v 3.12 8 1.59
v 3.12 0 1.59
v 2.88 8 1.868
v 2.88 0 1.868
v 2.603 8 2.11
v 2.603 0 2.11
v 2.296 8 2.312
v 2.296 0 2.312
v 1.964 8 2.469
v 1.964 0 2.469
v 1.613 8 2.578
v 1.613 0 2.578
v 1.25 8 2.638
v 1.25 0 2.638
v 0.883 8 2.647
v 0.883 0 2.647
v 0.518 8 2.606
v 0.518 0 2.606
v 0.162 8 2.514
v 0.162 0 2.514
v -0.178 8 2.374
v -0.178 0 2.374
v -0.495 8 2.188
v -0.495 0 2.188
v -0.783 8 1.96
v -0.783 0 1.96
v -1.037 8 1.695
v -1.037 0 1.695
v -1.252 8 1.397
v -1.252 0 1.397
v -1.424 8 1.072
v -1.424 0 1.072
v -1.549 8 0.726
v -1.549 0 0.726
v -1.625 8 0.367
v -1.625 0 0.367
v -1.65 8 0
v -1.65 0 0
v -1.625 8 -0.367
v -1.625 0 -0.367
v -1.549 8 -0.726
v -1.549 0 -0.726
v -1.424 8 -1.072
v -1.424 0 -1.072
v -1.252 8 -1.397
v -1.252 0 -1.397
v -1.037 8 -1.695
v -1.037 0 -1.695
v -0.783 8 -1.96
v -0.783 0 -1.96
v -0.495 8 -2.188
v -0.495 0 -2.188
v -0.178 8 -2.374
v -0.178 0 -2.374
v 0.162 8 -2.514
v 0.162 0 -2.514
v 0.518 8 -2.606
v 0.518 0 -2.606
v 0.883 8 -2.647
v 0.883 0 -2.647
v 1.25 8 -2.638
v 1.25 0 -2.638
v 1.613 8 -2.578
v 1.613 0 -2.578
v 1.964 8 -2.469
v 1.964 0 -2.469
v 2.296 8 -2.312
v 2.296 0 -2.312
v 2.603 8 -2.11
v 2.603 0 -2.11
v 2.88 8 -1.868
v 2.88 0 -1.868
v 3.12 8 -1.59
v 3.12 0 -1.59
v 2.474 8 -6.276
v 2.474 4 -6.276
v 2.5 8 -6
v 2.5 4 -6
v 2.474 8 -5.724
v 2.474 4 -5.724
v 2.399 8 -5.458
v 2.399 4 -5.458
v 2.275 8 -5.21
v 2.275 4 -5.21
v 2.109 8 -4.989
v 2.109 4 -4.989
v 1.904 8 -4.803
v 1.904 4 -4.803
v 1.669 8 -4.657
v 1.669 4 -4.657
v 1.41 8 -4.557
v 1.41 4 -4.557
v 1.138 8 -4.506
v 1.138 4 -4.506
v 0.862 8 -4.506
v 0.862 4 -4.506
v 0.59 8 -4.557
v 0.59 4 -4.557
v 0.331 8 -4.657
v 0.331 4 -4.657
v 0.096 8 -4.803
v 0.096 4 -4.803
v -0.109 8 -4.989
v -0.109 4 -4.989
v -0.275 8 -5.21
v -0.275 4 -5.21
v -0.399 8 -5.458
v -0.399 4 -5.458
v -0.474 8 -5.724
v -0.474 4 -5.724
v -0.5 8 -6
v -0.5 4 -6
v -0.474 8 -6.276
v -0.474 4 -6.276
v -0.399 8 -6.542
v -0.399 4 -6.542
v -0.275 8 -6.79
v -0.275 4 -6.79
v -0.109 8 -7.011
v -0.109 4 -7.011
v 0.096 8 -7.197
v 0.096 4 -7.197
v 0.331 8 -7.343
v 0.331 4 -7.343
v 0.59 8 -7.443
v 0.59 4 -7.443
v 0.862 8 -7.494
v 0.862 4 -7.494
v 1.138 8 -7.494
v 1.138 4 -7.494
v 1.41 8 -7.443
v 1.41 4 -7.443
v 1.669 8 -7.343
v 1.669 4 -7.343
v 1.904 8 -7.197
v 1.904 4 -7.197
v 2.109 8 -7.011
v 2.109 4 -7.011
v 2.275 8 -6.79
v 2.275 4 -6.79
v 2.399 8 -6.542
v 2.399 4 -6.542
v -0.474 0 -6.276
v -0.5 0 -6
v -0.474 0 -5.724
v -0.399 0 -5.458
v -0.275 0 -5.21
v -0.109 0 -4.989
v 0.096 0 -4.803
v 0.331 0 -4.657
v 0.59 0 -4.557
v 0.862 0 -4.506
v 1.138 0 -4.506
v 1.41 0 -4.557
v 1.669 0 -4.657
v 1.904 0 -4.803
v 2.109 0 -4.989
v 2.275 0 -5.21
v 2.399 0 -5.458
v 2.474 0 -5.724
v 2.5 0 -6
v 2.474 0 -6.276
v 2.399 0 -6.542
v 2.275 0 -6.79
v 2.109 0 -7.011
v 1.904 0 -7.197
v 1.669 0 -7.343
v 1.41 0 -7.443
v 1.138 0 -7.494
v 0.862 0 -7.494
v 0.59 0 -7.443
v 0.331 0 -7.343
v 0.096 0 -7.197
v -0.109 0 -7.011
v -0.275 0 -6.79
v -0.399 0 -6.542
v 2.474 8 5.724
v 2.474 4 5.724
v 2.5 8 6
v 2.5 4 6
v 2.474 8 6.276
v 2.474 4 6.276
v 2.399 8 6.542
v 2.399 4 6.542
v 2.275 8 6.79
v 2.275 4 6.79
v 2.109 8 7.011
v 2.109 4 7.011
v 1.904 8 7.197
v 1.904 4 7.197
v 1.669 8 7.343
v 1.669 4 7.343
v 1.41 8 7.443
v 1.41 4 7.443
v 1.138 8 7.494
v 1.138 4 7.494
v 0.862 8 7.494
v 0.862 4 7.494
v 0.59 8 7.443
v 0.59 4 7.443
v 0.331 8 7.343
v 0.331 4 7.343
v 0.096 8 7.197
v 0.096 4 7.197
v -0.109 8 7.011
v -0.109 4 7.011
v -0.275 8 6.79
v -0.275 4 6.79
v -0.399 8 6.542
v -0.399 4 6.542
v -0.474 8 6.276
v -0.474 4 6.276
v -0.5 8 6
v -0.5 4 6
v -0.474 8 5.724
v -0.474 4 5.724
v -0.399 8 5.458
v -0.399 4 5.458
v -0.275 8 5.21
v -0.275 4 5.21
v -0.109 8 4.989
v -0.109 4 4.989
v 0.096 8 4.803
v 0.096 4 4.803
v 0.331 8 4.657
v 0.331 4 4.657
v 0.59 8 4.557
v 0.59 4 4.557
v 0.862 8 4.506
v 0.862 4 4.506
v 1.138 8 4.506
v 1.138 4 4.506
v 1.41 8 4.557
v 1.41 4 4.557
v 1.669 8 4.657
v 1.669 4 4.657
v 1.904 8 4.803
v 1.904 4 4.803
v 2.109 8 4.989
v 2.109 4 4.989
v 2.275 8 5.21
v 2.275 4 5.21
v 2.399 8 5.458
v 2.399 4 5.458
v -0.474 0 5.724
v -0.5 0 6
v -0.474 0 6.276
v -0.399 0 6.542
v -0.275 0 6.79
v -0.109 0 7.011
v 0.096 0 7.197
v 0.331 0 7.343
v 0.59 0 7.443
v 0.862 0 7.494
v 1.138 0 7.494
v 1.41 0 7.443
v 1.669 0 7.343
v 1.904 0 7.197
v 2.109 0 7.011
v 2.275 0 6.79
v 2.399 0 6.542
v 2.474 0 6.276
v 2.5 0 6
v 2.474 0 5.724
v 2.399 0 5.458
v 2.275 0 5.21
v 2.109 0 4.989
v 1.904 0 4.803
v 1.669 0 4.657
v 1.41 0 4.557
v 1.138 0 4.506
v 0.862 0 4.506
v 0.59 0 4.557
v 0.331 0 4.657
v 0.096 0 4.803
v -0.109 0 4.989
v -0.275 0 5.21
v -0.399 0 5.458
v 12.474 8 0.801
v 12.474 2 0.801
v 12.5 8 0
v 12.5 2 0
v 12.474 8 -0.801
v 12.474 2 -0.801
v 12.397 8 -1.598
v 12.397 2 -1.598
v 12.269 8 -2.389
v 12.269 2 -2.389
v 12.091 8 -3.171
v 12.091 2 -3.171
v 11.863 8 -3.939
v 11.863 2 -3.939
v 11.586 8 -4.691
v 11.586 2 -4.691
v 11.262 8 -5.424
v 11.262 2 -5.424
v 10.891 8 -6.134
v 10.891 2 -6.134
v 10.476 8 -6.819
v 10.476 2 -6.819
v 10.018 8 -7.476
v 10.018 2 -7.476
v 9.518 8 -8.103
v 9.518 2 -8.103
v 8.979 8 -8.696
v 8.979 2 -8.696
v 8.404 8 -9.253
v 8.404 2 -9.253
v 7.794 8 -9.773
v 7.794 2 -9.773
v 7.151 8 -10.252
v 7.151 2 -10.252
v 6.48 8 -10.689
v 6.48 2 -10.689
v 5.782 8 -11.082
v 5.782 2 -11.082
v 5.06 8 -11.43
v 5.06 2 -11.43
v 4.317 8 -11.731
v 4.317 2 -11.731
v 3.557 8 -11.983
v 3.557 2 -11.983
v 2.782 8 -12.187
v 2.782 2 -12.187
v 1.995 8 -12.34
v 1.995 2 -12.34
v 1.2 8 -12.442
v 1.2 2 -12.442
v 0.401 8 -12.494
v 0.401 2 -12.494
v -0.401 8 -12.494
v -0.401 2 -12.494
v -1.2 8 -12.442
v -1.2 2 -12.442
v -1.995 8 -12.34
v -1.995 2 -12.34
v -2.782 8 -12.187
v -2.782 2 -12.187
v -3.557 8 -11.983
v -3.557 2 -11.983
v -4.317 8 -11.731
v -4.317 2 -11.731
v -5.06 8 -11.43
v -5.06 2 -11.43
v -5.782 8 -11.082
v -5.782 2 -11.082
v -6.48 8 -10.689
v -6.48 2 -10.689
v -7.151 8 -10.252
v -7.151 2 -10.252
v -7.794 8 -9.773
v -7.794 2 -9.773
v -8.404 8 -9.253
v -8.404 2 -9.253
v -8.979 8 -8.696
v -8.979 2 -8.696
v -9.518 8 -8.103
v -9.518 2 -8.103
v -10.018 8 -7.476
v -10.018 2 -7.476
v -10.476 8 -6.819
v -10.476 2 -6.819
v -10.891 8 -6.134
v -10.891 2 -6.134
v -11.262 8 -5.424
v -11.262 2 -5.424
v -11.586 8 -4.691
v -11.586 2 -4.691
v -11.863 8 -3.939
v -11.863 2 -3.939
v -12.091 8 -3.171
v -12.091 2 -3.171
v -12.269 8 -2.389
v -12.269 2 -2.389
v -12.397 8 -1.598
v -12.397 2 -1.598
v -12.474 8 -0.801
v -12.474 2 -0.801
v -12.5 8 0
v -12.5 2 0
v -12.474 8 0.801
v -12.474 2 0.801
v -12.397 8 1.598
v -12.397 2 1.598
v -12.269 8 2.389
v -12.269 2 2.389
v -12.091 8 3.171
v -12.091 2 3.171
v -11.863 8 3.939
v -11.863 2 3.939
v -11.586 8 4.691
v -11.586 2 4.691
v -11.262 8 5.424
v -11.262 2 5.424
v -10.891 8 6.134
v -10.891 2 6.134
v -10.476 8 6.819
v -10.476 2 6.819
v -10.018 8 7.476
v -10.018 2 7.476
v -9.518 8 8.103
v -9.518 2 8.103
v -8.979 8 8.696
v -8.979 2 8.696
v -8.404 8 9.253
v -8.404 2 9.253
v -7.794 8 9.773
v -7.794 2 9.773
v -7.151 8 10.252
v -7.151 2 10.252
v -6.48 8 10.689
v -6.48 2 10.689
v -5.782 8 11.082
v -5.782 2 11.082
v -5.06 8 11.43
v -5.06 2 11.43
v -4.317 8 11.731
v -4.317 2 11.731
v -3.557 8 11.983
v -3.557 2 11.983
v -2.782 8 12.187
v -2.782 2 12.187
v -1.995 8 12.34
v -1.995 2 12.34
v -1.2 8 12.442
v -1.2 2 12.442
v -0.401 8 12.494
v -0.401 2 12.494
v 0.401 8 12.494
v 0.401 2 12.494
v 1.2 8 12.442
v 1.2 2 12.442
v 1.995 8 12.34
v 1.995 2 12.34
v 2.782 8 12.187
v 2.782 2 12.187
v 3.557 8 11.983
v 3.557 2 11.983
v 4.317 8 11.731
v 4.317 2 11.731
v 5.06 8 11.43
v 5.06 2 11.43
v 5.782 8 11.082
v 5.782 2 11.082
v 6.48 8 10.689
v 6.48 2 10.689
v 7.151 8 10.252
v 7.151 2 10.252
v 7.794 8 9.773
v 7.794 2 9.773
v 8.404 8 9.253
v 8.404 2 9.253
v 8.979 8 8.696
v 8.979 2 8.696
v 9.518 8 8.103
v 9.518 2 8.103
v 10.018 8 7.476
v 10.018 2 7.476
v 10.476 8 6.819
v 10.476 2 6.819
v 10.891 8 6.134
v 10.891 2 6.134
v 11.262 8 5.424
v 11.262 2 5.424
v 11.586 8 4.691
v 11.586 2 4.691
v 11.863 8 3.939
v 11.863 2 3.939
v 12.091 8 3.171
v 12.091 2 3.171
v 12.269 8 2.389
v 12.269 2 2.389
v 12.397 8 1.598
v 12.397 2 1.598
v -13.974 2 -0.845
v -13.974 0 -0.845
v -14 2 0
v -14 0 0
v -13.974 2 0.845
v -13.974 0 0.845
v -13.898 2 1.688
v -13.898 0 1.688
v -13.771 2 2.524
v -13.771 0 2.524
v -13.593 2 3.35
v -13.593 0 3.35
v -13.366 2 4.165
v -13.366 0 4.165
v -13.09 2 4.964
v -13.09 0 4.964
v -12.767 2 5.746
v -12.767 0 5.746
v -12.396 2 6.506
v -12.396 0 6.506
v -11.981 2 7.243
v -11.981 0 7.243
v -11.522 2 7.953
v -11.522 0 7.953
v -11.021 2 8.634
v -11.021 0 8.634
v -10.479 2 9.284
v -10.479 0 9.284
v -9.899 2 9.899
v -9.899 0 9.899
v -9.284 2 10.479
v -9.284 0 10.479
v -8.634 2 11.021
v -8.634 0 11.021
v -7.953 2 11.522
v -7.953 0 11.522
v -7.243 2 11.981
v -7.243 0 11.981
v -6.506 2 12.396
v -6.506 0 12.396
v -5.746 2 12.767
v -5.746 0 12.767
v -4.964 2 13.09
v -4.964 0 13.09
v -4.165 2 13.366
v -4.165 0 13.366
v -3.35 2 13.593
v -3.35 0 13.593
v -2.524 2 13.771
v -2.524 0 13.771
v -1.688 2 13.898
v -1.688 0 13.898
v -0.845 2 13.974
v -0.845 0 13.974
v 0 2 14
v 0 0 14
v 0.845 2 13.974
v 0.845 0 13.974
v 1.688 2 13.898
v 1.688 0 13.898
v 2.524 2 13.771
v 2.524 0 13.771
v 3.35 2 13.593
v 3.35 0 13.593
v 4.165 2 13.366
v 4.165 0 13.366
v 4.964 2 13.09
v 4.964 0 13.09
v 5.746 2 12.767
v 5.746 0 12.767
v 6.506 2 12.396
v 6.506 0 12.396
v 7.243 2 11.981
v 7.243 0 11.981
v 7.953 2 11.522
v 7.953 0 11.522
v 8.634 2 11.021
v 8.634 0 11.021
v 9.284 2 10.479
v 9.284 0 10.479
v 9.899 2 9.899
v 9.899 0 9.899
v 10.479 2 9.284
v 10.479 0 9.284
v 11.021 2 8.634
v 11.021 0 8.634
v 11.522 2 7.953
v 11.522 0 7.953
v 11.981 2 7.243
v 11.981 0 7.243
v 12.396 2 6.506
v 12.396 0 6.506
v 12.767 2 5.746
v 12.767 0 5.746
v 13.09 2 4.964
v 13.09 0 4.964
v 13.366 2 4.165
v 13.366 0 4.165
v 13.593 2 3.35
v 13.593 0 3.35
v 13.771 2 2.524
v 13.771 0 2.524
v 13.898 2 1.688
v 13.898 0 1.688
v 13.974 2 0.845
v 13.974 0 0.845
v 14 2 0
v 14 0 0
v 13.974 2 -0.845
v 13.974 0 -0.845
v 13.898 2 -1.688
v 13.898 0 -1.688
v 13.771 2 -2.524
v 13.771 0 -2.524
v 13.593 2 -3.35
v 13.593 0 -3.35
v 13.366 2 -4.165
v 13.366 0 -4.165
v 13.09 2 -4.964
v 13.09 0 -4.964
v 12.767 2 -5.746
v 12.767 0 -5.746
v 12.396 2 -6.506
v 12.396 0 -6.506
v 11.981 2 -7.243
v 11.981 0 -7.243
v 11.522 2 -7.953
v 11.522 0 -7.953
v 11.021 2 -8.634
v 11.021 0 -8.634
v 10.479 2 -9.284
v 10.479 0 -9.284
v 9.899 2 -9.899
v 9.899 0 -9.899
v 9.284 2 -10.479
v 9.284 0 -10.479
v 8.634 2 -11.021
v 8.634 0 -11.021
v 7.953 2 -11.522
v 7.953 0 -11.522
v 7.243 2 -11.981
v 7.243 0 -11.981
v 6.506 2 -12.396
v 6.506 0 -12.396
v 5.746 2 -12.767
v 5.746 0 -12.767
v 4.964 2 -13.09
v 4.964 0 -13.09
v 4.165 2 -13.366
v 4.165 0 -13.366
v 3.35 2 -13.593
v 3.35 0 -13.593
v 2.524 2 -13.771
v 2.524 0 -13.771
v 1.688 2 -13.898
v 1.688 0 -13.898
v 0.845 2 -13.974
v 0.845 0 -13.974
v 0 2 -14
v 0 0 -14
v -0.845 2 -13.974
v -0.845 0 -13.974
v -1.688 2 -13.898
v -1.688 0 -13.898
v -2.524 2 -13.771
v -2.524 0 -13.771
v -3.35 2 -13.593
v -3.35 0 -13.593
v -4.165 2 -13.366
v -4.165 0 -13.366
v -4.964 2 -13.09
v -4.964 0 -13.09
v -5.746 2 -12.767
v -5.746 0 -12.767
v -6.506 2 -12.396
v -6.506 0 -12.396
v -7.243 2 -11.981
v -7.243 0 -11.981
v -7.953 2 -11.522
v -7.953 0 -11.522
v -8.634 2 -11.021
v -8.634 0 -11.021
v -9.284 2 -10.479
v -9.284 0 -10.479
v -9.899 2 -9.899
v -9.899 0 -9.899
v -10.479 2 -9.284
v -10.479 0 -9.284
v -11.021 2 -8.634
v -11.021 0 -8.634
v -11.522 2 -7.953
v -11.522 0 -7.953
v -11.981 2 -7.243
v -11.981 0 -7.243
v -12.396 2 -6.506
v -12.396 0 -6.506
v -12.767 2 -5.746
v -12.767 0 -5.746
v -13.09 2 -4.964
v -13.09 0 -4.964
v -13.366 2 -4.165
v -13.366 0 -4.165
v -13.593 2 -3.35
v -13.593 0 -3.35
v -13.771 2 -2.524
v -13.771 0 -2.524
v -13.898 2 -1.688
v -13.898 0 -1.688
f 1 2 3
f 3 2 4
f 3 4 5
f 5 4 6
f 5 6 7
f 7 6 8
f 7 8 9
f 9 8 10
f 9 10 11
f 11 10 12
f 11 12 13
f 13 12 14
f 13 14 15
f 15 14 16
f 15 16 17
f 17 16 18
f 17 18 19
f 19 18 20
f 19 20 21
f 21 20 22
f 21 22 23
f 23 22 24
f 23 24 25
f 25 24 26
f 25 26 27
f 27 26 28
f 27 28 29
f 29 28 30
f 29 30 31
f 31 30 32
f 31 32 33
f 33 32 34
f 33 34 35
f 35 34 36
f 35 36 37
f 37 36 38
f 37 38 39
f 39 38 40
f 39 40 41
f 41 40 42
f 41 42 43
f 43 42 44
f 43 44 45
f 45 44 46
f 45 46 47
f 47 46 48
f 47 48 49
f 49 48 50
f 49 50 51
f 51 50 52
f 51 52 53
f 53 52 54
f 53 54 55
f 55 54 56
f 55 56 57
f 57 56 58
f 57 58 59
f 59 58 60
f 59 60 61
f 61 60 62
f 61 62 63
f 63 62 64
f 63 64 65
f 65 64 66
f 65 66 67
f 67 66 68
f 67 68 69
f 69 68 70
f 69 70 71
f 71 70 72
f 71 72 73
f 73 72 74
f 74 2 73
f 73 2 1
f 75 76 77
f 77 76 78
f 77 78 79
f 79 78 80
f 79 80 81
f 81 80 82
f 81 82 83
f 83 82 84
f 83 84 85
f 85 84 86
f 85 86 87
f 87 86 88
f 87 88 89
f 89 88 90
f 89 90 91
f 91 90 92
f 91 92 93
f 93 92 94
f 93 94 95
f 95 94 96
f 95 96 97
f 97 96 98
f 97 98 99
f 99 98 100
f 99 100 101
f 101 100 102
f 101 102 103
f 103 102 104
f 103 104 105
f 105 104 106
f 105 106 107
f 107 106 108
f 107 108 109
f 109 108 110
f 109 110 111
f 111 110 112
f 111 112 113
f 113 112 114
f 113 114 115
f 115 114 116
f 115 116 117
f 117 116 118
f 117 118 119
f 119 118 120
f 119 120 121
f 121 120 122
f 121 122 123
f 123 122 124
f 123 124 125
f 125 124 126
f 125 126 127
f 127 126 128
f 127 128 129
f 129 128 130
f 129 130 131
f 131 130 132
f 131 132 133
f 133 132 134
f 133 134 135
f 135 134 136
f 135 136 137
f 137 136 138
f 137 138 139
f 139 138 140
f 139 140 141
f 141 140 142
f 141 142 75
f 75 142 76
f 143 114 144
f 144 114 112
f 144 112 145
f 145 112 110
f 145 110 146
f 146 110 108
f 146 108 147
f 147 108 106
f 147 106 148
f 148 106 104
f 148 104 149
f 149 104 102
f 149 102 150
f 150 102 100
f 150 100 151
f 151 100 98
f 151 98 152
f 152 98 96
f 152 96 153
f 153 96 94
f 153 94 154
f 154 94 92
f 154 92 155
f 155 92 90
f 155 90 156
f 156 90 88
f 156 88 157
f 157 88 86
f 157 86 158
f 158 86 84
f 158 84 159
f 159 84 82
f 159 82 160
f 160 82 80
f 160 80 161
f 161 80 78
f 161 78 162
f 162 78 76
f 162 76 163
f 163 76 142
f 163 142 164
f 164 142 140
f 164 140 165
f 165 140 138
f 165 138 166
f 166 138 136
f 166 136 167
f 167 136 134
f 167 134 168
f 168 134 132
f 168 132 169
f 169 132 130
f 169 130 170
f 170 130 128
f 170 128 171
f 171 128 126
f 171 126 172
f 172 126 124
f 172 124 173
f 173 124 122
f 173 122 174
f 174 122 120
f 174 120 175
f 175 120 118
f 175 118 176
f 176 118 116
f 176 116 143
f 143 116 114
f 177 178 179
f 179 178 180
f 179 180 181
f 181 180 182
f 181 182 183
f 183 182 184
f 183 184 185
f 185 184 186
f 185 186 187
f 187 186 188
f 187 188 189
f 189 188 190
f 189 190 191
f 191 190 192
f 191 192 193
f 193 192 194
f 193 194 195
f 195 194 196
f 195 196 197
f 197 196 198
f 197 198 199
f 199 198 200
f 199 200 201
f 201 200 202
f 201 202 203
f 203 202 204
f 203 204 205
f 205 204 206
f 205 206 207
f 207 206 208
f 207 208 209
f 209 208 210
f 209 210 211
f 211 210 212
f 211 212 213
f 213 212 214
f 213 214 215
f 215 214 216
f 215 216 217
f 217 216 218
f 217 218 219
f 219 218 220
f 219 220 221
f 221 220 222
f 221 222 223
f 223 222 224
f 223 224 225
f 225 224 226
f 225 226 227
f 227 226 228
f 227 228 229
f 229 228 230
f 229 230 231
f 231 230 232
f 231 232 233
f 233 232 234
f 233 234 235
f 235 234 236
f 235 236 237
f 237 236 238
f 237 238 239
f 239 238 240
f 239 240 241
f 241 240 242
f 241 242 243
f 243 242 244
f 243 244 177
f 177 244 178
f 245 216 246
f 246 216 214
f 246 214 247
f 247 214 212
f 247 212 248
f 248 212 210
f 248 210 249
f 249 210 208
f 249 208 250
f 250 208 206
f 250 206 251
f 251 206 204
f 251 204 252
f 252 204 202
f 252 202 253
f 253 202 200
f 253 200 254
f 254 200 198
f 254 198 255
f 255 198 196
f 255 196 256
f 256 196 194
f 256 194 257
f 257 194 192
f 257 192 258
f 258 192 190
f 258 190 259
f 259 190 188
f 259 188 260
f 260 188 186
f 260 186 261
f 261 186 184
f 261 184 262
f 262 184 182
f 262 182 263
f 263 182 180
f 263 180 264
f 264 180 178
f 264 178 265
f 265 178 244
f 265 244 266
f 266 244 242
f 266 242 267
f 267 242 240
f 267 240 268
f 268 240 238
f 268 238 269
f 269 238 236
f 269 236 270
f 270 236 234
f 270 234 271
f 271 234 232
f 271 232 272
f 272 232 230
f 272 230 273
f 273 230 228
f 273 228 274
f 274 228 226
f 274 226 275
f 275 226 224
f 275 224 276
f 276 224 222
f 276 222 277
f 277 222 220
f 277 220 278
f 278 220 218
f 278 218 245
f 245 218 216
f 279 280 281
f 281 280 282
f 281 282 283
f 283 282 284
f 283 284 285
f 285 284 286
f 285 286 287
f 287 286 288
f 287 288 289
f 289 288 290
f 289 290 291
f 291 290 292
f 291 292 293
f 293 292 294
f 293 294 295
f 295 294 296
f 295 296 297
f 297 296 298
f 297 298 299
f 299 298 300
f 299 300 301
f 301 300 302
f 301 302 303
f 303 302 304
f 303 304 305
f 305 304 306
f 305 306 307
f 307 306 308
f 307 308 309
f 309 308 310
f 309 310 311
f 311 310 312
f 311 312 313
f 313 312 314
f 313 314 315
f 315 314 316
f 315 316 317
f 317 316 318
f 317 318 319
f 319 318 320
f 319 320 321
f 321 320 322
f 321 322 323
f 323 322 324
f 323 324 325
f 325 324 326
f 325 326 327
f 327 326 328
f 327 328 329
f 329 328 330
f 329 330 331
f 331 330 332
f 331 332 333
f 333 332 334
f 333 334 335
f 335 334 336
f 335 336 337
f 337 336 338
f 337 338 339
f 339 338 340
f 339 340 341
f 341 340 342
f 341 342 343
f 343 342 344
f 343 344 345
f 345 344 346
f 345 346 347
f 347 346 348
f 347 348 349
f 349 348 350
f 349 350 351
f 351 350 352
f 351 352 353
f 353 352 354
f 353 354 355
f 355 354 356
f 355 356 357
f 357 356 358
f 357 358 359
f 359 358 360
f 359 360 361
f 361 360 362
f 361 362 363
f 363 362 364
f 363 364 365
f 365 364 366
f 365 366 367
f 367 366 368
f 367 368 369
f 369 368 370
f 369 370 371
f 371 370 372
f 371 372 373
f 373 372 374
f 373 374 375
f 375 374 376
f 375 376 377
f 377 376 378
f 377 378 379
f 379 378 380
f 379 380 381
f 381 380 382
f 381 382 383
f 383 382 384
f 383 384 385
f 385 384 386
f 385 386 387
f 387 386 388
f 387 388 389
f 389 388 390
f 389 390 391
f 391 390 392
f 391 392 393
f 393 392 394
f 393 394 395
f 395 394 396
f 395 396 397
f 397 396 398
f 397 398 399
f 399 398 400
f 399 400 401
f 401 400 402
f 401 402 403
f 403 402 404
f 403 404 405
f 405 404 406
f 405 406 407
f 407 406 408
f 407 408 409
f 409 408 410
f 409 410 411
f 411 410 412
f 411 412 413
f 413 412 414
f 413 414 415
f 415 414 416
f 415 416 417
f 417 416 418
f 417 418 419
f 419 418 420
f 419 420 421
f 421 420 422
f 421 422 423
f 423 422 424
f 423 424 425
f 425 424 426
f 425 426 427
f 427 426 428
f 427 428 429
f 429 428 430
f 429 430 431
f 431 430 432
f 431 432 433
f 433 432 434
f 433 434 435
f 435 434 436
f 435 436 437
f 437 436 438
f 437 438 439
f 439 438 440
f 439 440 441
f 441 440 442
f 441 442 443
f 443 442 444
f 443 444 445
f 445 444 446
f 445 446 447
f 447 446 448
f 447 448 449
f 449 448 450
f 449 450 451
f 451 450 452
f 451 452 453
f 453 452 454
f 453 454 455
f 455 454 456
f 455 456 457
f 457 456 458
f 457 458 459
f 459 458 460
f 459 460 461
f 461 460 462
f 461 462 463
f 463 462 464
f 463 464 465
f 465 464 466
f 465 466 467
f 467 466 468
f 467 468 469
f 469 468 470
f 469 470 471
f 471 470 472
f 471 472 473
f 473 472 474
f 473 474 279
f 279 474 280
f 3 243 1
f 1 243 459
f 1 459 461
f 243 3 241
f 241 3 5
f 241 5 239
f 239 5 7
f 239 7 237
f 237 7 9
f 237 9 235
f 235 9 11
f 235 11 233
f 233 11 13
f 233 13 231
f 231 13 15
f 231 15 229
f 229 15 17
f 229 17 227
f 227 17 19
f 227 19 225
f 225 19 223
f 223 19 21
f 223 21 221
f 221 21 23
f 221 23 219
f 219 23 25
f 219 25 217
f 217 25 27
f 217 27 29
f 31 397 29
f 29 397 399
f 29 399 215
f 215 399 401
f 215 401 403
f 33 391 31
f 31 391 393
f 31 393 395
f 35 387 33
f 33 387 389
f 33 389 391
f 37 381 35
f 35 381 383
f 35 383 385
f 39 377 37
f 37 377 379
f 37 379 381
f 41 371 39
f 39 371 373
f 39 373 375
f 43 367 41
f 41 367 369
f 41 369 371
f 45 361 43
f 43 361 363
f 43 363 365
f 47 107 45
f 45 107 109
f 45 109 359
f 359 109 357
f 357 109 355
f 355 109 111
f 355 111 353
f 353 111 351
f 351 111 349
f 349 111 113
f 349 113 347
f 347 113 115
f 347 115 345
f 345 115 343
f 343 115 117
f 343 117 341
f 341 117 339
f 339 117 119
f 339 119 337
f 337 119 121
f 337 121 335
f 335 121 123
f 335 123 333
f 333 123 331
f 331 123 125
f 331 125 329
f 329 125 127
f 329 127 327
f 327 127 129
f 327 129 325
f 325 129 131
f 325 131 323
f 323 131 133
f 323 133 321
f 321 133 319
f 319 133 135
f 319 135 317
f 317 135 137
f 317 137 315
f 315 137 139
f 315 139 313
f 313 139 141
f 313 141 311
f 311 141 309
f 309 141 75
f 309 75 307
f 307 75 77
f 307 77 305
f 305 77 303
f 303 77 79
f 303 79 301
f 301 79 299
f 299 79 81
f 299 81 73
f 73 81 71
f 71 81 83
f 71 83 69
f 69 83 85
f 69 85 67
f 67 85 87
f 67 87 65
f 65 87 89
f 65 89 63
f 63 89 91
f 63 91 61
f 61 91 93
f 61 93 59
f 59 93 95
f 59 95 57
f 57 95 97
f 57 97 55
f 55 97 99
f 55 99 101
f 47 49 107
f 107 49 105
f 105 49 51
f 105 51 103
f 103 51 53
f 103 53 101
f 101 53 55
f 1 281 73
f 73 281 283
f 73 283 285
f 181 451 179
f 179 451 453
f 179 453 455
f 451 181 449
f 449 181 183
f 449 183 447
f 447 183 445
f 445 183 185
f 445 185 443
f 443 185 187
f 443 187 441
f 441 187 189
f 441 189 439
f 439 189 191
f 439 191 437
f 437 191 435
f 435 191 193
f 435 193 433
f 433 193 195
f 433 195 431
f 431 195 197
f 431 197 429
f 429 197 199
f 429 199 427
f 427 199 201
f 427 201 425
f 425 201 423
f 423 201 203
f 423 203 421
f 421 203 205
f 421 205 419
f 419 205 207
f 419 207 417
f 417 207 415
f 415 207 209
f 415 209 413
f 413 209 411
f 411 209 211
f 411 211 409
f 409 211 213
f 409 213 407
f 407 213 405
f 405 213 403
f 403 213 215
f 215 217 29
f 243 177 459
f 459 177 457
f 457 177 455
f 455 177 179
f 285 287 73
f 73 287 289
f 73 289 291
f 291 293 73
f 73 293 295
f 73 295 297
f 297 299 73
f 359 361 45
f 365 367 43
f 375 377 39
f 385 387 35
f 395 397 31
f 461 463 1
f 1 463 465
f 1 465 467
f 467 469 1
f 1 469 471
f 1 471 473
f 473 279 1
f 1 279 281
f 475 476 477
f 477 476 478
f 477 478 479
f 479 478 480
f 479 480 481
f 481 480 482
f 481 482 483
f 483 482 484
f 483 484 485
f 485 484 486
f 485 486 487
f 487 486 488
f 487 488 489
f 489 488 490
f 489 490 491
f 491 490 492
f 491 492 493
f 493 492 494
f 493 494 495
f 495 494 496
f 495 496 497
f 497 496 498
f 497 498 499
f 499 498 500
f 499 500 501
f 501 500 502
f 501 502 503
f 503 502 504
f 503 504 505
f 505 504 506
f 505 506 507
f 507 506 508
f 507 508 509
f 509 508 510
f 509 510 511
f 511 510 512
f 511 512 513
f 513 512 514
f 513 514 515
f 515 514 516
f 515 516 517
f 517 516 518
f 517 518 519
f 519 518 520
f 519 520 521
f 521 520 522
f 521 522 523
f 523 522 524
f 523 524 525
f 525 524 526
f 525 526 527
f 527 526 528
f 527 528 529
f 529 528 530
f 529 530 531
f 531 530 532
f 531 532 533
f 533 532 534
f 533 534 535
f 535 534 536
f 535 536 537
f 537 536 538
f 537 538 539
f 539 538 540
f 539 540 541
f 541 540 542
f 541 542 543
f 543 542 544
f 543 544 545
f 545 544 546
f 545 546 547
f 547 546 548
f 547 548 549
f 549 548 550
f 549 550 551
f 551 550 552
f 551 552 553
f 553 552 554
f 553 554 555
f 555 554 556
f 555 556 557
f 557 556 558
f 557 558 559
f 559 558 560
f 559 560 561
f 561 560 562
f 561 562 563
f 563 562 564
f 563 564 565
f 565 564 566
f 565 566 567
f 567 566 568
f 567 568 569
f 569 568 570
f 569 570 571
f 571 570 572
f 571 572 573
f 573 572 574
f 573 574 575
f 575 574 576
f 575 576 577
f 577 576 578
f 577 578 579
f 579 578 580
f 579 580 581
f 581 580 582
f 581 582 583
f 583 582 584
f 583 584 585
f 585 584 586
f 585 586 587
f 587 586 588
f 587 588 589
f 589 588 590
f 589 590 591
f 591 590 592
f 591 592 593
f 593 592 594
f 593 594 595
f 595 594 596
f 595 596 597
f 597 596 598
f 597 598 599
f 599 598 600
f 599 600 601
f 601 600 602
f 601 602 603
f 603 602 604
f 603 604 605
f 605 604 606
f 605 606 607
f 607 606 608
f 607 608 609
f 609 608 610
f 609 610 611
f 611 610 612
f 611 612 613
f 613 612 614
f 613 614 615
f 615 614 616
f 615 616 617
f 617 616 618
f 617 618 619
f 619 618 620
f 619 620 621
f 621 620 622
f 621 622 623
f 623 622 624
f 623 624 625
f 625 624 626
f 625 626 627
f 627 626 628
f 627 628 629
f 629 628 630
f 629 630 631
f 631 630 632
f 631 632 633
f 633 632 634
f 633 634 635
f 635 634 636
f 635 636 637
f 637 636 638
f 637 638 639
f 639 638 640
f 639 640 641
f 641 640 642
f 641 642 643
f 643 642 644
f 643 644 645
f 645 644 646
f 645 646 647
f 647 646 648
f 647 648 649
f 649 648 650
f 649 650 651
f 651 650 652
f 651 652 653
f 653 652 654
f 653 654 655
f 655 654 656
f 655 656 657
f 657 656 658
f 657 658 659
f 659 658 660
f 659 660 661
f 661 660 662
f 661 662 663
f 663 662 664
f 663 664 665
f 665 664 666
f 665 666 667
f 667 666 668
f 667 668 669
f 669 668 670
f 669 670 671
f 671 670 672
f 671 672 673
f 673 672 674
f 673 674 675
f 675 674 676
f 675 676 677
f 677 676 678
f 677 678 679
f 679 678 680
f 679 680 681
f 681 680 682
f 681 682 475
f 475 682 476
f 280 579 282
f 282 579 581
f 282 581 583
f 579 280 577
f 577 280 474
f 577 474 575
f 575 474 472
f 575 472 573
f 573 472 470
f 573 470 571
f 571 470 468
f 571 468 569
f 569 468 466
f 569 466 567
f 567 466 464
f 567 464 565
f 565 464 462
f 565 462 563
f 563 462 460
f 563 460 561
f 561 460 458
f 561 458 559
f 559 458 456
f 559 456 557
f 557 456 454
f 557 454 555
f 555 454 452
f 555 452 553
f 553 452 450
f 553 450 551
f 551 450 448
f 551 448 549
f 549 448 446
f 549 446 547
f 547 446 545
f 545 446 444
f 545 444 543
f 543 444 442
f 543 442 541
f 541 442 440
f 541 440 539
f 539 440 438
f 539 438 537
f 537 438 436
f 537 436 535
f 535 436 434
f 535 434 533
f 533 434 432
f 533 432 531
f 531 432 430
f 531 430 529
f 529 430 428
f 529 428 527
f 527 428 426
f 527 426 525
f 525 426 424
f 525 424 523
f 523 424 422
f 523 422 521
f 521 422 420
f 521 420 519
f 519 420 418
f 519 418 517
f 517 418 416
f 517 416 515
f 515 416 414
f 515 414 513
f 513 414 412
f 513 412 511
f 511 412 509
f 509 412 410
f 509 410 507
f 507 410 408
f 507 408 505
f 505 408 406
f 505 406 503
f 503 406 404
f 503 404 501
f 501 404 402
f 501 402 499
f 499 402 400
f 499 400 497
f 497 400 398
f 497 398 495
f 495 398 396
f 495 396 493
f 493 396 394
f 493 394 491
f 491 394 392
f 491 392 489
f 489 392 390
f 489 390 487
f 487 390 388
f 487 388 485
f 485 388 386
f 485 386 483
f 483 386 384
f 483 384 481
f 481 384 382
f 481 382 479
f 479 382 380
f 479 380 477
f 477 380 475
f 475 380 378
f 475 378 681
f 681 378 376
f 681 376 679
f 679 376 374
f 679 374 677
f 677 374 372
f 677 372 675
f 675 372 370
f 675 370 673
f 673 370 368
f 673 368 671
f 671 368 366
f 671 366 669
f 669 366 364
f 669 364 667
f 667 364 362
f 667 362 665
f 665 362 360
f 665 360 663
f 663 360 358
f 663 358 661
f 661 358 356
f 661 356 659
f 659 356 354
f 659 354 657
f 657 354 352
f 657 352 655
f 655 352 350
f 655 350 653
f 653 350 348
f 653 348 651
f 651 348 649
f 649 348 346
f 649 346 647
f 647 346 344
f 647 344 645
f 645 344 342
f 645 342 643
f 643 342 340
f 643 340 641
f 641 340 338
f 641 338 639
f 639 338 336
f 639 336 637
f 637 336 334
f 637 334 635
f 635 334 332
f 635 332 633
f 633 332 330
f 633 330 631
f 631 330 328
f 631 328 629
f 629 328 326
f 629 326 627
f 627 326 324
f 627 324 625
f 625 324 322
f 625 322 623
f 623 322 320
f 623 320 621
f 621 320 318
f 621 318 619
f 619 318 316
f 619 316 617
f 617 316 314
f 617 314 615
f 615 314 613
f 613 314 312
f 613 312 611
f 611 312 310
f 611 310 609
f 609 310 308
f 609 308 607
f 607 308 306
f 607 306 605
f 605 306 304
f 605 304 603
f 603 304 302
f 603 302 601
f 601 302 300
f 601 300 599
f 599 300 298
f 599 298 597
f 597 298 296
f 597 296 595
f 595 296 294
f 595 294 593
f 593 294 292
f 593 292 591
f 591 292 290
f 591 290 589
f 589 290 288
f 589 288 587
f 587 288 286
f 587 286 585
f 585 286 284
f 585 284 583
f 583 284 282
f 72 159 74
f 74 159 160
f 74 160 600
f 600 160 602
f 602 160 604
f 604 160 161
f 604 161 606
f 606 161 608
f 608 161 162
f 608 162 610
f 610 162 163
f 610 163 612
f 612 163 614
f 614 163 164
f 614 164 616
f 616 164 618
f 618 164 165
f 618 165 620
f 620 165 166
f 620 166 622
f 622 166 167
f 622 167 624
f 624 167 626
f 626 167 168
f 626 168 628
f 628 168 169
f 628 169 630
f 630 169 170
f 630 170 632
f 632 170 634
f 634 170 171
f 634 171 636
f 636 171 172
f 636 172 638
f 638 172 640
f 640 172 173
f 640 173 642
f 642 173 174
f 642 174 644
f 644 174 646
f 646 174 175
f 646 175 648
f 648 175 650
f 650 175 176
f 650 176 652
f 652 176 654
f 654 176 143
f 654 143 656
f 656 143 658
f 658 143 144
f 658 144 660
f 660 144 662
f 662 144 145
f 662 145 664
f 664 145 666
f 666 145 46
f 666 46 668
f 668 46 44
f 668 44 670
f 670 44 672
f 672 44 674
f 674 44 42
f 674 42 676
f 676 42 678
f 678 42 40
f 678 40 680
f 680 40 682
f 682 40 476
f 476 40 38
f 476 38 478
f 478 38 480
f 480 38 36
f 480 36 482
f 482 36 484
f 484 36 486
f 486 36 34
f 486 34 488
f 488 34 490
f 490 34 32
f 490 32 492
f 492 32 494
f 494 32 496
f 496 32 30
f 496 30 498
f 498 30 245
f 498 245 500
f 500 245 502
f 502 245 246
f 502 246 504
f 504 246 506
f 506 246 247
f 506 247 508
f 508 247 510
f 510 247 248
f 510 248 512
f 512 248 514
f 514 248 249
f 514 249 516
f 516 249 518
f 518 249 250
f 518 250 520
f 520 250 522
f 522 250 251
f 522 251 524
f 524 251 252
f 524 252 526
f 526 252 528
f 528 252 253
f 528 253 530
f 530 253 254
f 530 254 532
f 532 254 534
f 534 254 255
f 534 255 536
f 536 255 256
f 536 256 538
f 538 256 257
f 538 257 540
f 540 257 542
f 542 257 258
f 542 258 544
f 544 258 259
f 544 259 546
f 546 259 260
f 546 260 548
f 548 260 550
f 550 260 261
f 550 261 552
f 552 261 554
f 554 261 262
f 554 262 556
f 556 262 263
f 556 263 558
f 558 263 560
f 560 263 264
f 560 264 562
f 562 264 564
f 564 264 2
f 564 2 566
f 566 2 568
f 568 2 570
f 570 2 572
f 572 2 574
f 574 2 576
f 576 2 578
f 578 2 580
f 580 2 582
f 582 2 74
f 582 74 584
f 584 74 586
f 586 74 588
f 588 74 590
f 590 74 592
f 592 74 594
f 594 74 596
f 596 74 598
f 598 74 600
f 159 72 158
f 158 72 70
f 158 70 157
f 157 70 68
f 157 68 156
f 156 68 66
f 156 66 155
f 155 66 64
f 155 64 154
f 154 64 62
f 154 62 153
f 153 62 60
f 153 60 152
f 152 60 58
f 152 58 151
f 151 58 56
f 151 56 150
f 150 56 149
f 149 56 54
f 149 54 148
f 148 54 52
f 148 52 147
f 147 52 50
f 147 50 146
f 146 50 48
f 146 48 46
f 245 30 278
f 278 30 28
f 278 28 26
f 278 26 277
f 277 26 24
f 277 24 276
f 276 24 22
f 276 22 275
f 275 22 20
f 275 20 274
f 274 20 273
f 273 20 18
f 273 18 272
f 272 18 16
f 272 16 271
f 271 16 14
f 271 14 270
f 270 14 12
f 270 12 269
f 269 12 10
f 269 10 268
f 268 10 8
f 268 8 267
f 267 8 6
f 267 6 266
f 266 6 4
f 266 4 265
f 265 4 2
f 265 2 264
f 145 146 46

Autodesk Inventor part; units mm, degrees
ref_plane "YZ Plane" through (0, 0, 0) normal (1, 0, 0) x (0, 1, 0)
ref_plane "XZ Plane" through (0, 0, 0) normal (0, 1, 0) x (-1, 0, 0)
ref_plane "XY Plane" through (0, 0, 0) normal (0, 0, 1) x (1, 0, 0)
sketch "Szkic1" plane through (0, 0, 0) normal (0, 1, 0) x (-1, 0, 0)
  circle A0 centre (0, 0) radius 14
  dimension "d0" = 28
extrude "Wyciągnięcie proste1" add sketch "Szkic1" along normal blind 2
sketch "Szkic2" plane through (0, 2, 0) normal (0, 1, 0) x (1, 0, 0)
  circle A0 centre (0, 0) radius 12.5
  dimension "d3" = 25
extrude "Wyciągnięcie proste2" add sketch "Szkic2" along normal blind 6
sketch "Szkic3" plane through (0, 8, 0) normal (0, 1, 0) x (1, 0, 0)
  circle A0 centre (1, -6) radius 1.5
  point P0 (0, 0)
  dimension "d6" = 3
  dimension "d10" = 6
  dimension "d11" = 1
extrude "Wyciągnięcie proste3" cut sketch "Szkic3" against normal up to surface (8 mm away)
mirror "Odbij1" about plane through (0, 0, 0) normal (0, 0, 1) of "Wyciągnięcie proste3"
sketch "Sketch5" plane through (0, 8, 0) normal (0, 1, 0) x (1, 0, 0)
  arc A0 (3.12, 1.59) -> (3.12, -1.59) centre (1, 0) ccw
  line L0 (3.12, -1.59) -> (3.12, 1.59)
  point P0 (0, 0)
  dimension "d12" = 5.3
  dimension "d13" = 3.18
  dimension "d14" = 1
  dimension "d15" = 0
extrude "Extrusion4" cut sketch "Sketch5" against normal up to surface (8 mm away)
properties part number "InputShaft2_3DPrint"
